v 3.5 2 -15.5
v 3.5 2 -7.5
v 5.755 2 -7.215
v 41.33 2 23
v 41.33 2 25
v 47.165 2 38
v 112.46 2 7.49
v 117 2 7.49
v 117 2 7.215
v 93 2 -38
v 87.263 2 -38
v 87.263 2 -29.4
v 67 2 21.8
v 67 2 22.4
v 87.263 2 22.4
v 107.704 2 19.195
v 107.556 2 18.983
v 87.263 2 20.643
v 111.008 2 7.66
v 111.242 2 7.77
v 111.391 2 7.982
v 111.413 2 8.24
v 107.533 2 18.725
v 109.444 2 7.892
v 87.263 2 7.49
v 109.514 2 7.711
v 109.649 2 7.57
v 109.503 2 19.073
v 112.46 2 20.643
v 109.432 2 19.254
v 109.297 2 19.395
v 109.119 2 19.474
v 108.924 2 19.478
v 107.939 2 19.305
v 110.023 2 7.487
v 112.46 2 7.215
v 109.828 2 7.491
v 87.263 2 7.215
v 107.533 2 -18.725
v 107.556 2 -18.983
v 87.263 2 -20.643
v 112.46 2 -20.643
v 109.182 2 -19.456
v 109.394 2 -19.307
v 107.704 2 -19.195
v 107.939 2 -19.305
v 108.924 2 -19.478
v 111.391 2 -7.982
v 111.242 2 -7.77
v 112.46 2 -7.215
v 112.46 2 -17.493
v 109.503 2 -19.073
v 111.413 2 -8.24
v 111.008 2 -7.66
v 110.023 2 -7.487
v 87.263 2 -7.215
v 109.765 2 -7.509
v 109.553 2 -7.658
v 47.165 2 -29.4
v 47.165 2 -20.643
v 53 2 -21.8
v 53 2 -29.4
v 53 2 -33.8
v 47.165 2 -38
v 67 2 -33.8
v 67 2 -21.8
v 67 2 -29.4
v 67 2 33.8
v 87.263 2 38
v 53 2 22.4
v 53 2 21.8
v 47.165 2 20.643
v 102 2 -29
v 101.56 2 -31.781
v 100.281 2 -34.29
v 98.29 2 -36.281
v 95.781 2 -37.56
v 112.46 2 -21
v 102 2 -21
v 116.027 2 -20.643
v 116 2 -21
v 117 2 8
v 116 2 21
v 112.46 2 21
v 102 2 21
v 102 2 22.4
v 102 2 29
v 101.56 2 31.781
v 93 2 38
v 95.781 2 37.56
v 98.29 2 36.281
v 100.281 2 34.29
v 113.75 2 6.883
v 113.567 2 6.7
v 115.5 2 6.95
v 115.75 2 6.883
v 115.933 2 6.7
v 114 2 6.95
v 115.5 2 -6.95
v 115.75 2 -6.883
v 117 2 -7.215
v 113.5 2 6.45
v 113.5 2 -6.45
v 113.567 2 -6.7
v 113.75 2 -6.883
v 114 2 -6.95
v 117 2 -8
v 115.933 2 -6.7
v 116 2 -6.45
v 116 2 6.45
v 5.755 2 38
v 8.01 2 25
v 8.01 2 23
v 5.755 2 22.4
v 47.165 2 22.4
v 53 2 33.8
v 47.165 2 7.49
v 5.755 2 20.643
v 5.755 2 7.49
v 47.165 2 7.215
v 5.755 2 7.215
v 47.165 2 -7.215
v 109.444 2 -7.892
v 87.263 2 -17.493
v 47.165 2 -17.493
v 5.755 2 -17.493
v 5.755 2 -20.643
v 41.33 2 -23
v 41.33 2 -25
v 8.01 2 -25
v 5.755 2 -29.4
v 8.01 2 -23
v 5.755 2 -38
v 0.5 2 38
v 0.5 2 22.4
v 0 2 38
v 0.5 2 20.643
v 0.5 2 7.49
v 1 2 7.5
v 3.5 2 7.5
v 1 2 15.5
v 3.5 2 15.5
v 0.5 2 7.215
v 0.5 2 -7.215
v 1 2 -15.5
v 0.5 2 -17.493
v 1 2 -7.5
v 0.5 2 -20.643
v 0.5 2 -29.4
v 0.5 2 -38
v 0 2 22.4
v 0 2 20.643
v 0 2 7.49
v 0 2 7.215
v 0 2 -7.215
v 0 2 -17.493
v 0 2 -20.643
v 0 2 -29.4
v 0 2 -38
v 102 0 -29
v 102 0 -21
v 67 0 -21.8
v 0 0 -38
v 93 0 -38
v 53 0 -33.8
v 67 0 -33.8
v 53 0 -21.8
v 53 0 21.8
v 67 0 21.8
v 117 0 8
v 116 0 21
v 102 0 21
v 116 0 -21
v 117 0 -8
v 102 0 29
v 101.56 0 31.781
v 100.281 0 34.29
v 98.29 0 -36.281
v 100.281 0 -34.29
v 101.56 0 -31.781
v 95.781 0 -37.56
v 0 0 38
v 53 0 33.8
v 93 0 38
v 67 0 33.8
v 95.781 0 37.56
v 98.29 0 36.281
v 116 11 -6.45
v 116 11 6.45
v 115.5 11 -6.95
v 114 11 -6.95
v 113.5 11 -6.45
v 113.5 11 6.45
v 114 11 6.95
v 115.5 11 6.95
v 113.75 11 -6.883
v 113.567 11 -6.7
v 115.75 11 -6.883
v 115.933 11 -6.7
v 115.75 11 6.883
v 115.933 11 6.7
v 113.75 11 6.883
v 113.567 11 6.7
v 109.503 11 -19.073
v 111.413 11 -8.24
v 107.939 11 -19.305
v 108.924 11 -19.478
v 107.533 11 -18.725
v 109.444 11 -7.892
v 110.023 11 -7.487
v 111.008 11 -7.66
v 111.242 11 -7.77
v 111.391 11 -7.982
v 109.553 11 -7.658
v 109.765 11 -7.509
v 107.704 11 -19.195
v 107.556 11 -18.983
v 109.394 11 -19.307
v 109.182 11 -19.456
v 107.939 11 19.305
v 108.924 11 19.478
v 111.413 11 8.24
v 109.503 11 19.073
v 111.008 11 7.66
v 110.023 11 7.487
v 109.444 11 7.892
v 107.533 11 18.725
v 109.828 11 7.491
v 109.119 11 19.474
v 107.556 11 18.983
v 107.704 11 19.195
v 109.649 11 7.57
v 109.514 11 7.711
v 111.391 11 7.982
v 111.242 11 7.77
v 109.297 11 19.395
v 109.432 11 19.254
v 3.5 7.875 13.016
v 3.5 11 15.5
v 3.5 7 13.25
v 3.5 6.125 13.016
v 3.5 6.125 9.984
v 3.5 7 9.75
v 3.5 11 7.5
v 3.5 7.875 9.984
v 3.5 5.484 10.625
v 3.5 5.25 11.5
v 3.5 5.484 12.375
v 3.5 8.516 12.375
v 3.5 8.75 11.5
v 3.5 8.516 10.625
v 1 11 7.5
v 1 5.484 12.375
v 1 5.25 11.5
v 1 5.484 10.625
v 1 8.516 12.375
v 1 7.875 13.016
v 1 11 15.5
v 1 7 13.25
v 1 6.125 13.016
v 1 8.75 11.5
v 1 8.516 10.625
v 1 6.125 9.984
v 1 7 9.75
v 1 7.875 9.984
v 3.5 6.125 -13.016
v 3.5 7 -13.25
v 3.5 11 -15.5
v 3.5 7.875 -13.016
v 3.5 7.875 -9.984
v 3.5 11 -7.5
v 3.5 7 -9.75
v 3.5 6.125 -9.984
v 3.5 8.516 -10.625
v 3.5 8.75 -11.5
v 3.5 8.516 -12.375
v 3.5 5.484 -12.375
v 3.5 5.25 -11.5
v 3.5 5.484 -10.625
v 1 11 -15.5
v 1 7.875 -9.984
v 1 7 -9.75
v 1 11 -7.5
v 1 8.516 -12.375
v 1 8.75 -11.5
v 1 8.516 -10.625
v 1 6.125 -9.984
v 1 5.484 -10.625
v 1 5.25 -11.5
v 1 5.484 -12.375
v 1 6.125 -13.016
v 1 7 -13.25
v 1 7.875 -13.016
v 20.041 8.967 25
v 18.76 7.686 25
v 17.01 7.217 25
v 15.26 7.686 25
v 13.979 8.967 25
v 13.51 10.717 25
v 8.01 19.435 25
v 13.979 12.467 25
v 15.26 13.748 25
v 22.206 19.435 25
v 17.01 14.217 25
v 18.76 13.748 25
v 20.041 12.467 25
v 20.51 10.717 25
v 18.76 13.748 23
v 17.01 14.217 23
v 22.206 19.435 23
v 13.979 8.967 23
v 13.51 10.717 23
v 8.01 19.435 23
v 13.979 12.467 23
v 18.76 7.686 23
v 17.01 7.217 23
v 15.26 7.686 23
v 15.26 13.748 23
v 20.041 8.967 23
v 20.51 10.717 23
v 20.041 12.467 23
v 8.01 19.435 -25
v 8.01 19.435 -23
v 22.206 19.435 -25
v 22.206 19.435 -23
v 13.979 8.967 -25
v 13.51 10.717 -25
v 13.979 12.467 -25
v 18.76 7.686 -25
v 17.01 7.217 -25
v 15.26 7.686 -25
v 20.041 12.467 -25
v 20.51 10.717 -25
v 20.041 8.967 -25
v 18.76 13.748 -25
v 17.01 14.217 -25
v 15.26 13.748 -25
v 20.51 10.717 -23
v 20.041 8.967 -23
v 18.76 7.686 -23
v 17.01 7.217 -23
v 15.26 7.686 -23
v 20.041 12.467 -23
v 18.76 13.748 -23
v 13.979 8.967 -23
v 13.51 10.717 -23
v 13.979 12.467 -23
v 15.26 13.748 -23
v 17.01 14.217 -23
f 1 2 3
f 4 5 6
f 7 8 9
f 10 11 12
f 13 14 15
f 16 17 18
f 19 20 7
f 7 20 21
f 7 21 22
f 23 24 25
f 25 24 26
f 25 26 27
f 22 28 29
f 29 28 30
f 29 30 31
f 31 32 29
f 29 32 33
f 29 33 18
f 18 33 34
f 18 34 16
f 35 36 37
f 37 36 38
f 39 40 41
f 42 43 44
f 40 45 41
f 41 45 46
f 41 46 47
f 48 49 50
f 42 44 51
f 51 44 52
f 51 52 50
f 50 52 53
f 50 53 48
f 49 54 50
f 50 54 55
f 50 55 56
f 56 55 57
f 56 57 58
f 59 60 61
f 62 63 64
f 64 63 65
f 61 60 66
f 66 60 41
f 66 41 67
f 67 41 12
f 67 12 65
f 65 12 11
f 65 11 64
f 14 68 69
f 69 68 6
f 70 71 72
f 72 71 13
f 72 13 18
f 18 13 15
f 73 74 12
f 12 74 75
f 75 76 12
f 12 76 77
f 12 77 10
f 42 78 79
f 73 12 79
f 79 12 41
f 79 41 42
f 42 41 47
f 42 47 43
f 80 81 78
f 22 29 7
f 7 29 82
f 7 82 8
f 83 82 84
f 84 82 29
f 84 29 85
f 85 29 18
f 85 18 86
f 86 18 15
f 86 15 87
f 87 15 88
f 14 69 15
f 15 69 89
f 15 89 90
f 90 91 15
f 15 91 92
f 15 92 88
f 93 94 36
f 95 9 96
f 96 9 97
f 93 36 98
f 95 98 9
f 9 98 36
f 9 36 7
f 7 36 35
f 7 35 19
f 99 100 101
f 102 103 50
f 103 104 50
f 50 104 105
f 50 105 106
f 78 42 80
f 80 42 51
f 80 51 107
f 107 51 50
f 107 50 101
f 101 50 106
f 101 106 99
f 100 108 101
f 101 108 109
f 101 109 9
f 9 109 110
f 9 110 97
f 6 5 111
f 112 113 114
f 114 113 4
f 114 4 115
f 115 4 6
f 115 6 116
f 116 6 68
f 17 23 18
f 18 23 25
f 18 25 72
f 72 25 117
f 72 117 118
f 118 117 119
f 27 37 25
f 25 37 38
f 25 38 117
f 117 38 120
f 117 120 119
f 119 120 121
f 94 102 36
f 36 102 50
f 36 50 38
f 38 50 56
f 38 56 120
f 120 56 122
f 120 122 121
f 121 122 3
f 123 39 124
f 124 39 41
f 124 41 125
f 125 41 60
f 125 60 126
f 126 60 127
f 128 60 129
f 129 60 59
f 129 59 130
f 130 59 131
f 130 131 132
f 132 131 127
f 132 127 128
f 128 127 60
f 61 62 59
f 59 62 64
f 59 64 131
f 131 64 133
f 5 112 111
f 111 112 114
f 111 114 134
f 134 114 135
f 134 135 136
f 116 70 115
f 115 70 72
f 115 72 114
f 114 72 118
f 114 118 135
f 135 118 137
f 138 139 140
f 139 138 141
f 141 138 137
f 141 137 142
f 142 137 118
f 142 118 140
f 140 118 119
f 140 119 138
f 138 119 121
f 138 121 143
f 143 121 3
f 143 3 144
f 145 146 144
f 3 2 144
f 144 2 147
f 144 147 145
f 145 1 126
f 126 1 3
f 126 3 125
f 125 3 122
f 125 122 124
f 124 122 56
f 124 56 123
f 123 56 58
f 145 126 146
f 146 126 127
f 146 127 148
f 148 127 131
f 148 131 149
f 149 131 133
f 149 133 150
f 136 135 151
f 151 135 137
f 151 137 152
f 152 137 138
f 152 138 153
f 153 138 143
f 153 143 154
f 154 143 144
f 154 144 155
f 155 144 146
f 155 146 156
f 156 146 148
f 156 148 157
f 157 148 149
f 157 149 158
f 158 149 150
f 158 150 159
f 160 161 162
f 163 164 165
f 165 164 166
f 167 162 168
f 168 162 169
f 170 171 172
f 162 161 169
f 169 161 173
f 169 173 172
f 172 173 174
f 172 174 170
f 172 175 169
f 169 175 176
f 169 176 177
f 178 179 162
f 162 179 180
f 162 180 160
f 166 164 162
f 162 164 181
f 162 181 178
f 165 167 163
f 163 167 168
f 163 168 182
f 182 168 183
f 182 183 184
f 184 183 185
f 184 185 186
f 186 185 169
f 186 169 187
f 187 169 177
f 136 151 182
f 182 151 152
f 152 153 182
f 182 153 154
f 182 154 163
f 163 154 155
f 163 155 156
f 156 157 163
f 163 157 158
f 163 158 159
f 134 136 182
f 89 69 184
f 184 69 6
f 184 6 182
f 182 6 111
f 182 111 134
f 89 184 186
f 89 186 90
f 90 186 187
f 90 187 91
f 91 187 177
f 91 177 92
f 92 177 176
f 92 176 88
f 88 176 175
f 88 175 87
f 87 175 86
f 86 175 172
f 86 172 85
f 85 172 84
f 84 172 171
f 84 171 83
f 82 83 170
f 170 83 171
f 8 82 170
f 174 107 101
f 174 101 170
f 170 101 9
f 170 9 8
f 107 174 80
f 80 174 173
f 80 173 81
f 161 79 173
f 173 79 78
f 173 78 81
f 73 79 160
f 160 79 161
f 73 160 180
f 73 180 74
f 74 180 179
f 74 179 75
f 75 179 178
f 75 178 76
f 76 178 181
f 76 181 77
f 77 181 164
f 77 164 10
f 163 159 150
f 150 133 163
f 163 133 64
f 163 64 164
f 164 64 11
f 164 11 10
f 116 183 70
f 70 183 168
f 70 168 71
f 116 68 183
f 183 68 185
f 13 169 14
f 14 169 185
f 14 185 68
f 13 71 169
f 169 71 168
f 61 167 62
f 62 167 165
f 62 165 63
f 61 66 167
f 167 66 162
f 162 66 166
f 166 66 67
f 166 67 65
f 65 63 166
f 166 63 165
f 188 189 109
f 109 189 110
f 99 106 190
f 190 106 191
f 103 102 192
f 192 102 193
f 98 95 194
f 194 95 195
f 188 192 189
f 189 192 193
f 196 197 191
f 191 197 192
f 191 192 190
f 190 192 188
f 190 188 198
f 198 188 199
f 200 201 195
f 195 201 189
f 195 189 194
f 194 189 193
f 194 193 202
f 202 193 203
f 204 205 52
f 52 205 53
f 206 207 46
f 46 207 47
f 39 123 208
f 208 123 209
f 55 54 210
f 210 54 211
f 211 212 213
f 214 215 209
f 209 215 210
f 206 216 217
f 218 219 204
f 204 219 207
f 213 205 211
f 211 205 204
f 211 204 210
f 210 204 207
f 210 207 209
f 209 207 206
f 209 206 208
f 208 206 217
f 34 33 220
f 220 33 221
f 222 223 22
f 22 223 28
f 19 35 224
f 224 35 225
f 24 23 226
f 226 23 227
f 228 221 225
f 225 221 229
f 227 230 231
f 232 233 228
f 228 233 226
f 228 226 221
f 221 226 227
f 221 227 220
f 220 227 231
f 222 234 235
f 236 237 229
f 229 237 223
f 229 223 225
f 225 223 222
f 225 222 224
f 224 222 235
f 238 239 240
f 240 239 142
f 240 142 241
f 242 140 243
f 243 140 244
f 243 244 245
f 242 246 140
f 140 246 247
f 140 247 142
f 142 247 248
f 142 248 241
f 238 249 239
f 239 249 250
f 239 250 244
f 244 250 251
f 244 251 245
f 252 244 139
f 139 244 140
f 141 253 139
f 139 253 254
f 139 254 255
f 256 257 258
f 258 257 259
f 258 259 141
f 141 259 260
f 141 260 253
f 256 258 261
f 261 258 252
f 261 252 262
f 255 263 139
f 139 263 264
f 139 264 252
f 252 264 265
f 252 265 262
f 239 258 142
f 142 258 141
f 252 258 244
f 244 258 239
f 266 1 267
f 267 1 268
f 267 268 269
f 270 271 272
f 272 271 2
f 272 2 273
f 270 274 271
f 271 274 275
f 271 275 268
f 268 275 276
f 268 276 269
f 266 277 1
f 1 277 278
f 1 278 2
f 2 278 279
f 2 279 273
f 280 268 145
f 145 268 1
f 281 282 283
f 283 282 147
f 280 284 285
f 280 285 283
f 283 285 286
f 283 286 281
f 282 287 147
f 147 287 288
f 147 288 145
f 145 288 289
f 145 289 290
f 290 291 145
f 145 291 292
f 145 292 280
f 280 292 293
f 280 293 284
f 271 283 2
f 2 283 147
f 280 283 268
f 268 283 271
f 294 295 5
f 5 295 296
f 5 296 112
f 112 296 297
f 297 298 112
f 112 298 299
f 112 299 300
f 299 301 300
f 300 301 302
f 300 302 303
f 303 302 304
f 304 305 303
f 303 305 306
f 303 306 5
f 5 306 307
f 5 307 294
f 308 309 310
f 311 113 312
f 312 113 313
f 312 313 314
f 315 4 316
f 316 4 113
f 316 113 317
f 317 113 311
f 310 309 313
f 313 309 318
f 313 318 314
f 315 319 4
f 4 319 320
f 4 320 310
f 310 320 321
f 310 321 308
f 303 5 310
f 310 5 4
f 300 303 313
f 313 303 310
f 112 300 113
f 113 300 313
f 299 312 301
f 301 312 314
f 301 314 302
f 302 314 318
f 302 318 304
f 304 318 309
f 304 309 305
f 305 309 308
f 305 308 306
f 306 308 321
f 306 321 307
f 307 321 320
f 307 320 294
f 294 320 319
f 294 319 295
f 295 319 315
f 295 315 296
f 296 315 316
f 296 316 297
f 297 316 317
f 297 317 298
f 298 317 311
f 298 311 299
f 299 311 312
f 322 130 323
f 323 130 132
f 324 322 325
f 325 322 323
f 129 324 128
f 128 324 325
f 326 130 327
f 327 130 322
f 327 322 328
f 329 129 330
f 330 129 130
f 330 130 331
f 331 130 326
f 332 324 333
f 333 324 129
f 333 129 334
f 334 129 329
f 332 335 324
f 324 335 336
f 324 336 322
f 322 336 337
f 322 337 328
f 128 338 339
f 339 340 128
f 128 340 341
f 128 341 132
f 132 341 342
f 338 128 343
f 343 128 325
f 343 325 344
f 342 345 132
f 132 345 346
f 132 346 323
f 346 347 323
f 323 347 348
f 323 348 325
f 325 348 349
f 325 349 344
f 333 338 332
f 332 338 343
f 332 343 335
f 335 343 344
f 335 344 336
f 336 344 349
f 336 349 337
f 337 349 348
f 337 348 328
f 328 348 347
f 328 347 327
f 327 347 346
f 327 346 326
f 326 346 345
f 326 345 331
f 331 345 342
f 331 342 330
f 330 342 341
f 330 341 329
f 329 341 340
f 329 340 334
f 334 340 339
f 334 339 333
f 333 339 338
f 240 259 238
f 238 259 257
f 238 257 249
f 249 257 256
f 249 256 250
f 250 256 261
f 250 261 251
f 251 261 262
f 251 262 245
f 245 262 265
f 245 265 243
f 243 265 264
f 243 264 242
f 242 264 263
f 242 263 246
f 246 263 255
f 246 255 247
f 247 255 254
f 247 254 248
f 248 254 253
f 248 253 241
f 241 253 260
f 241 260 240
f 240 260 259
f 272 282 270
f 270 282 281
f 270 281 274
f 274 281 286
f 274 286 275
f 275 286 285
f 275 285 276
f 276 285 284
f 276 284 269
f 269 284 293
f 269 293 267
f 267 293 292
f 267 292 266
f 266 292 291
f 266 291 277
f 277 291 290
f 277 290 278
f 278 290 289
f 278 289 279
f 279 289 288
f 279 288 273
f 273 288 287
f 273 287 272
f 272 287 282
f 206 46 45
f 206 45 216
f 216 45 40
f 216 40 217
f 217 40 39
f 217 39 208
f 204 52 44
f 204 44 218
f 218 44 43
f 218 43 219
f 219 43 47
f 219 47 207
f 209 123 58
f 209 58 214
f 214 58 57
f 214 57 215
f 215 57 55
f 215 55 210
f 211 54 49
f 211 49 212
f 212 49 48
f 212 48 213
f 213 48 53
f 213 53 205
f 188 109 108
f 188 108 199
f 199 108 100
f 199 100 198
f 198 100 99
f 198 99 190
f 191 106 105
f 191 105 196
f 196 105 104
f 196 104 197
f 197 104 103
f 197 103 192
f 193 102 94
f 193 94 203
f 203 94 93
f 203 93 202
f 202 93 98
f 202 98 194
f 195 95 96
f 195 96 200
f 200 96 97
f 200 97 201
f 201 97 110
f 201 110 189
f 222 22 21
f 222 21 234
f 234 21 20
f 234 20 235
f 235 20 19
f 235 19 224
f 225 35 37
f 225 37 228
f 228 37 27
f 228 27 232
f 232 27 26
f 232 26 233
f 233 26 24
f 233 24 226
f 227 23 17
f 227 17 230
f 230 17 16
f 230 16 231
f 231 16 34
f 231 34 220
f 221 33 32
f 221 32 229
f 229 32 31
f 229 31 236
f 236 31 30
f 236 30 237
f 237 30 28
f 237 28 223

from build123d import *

# Parameters (mm, degrees)
ESBO_O1_W                = 14
ESBO_O1_H                = 12
RESSALTO_EXTRUS_O1_DEPTH = 2
ESBO_O2_W                = 2.5
ESBO_O2_H                = 13.9
RESSALTO_EXTRUS_O2_DEPTH = 9
ESBO_O3_W                = 2.5
ESBO_O3_H                = 8
RESSALTO_EXTRUS_O3_DEPTH = 9
RESSALTO_EXTRUS_O4_START = -15
ESBO_O4_R                = 3.5
RESSALTO_EXTRUS_O4_DEPTH = 2
ESBO_O6_R                = 1.75
CORTE_EXTRUS_O1_DEPTH    = 2.5
FILETE1_R                = 0.5


with BuildPart() as part:
    # Esboço1 → Ressalto-extrusão1 (new body)
    with BuildSketch(Plane(origin=(0, 0, 0), x_dir=(1, 0, 0), z_dir=(0, 1, 0))):
        with BuildLine():
            Line((116, -21), (117, -8))
            Line((117, -8), (117, 8))
            Line((117, 8), (116, 21))
            Line((116, 21), (102, 21))
            Line((102, 21), (102, 29))
            ThreePointArc((102, 29), (99.363961031, 35.363961031), (93, 38))
            Line((93, 38), (0, 38))
            Line((0, 38), (0, -38))
            Line((0, -38), (93, -38))
            ThreePointArc((93, -38), (99.363961031, -35.363961031), (102, -29))
            Line((102, -29), (102, -21))
            Line((102, -21), (116, -21))
        make_face()
        with Locations((60, -27.8)):
            Rectangle(ESBO_O1_W, ESBO_O1_H, mode=Mode.SUBTRACT)
        with Locations((60, 27.8)):
            Rectangle(ESBO_O1_W, ESBO_O1_H, mode=Mode.SUBTRACT)
    extrude(amount=RESSALTO_EXTRUS_O1_DEPTH)

    # Esboço2 → Ressalto-extrusão2 (add)
    with BuildSketch(Plane(origin=(0, 2, 0), x_dir=(1, 0, 0), z_dir=(0, 1, 0))):
        Polygon((111.5, 7.747296355), (109.530384494, 7.4), (107.446606362, 19.217693036), (109.416221868, 19.564989391), align=None)
        with Locations((114.75, 0)):
            Rectangle(ESBO_O2_W, ESBO_O2_H)
        Polygon((107.446606362, -19.217693036), (109.530384494, -7.4), (111.5, -7.747296355), (109.416221868, -19.564989391), align=None)
    extrude(amount=RESSALTO_EXTRUS_O2_DEPTH)

    # Esboço3 → Ressalto-extrusão3 (add)
    with BuildSketch(Plane(origin=(0, 2, 0), x_dir=(1, 0, 0), z_dir=(0, 1, 0))):
        with Locations((2.25, -11.5)):
            Rectangle(ESBO_O3_W, ESBO_O3_H)
        with Locations((2.25, 11.5)):
            Rectangle(ESBO_O3_W, ESBO_O3_H)
    extrude(amount=RESSALTO_EXTRUS_O3_DEPTH)

    # Esboço4 → Ressalto-extrusão4 (add)
    with BuildSketch(Plane.XY.offset(38).offset(RESSALTO_EXTRUS_O4_START)):
        Polygon((8.00982099, 2), (8.00982099, 19.434528411), (22.205610886, 19.434528411), (41.330494496, 2), align=None)
        with Locations((17.00982099, 10.717264205)):
            Circle(ESBO_O4_R, mode=Mode.SUBTRACT)
    ressalto_extrus_o4 = extrude(amount=RESSALTO_EXTRUS_O4_DEPTH)

    # Espelhar1: Ressalto-extrusão4 across plane
    add(ressalto_extrus_o4.mirror(Plane.XY))

    # Esboço6 → Corte-extrusão1 (cut)
    with BuildSketch(Plane.ZY.offset(-1)):
        with Locations((11.5, 7)):
            Circle(ESBO_O6_R)
    corte_extrus_o1 = extrude(amount=-CORTE_EXTRUS_O1_DEPTH, mode=Mode.SUBTRACT)

    # Espelhar2: Corte-extrusão1 across plane
    add(corte_extrus_o1.mirror(Plane.XY), mode=Mode.SUBTRACT)

    # Filete1
    filete1_edges = [part.edges().sort_by_distance(p)[0] for p in [
        (116, 6.5, 6.95),
        (116, 6.5, -6.95),
        (113.5, 6.5, -6.95),
        (113.5, 6.5, 6.95),
        (111.5, 6.5, -7.747296355),
        (109.416221868, 6.5, -19.564989391),
        (107.446606362, 6.5, -19.217693036),
        (109.530384494, 6.5, -7.4),
        (107.446606362, 6.5, 19.217693036),
        (109.416221868, 6.5, 19.564989391),
        (111.5, 6.5, 7.747296355),
        (109.530384494, 6.5, 7.4),
    ]]
    fillet(filete1_edges, radius=FILETE1_R)


solid = part.part
